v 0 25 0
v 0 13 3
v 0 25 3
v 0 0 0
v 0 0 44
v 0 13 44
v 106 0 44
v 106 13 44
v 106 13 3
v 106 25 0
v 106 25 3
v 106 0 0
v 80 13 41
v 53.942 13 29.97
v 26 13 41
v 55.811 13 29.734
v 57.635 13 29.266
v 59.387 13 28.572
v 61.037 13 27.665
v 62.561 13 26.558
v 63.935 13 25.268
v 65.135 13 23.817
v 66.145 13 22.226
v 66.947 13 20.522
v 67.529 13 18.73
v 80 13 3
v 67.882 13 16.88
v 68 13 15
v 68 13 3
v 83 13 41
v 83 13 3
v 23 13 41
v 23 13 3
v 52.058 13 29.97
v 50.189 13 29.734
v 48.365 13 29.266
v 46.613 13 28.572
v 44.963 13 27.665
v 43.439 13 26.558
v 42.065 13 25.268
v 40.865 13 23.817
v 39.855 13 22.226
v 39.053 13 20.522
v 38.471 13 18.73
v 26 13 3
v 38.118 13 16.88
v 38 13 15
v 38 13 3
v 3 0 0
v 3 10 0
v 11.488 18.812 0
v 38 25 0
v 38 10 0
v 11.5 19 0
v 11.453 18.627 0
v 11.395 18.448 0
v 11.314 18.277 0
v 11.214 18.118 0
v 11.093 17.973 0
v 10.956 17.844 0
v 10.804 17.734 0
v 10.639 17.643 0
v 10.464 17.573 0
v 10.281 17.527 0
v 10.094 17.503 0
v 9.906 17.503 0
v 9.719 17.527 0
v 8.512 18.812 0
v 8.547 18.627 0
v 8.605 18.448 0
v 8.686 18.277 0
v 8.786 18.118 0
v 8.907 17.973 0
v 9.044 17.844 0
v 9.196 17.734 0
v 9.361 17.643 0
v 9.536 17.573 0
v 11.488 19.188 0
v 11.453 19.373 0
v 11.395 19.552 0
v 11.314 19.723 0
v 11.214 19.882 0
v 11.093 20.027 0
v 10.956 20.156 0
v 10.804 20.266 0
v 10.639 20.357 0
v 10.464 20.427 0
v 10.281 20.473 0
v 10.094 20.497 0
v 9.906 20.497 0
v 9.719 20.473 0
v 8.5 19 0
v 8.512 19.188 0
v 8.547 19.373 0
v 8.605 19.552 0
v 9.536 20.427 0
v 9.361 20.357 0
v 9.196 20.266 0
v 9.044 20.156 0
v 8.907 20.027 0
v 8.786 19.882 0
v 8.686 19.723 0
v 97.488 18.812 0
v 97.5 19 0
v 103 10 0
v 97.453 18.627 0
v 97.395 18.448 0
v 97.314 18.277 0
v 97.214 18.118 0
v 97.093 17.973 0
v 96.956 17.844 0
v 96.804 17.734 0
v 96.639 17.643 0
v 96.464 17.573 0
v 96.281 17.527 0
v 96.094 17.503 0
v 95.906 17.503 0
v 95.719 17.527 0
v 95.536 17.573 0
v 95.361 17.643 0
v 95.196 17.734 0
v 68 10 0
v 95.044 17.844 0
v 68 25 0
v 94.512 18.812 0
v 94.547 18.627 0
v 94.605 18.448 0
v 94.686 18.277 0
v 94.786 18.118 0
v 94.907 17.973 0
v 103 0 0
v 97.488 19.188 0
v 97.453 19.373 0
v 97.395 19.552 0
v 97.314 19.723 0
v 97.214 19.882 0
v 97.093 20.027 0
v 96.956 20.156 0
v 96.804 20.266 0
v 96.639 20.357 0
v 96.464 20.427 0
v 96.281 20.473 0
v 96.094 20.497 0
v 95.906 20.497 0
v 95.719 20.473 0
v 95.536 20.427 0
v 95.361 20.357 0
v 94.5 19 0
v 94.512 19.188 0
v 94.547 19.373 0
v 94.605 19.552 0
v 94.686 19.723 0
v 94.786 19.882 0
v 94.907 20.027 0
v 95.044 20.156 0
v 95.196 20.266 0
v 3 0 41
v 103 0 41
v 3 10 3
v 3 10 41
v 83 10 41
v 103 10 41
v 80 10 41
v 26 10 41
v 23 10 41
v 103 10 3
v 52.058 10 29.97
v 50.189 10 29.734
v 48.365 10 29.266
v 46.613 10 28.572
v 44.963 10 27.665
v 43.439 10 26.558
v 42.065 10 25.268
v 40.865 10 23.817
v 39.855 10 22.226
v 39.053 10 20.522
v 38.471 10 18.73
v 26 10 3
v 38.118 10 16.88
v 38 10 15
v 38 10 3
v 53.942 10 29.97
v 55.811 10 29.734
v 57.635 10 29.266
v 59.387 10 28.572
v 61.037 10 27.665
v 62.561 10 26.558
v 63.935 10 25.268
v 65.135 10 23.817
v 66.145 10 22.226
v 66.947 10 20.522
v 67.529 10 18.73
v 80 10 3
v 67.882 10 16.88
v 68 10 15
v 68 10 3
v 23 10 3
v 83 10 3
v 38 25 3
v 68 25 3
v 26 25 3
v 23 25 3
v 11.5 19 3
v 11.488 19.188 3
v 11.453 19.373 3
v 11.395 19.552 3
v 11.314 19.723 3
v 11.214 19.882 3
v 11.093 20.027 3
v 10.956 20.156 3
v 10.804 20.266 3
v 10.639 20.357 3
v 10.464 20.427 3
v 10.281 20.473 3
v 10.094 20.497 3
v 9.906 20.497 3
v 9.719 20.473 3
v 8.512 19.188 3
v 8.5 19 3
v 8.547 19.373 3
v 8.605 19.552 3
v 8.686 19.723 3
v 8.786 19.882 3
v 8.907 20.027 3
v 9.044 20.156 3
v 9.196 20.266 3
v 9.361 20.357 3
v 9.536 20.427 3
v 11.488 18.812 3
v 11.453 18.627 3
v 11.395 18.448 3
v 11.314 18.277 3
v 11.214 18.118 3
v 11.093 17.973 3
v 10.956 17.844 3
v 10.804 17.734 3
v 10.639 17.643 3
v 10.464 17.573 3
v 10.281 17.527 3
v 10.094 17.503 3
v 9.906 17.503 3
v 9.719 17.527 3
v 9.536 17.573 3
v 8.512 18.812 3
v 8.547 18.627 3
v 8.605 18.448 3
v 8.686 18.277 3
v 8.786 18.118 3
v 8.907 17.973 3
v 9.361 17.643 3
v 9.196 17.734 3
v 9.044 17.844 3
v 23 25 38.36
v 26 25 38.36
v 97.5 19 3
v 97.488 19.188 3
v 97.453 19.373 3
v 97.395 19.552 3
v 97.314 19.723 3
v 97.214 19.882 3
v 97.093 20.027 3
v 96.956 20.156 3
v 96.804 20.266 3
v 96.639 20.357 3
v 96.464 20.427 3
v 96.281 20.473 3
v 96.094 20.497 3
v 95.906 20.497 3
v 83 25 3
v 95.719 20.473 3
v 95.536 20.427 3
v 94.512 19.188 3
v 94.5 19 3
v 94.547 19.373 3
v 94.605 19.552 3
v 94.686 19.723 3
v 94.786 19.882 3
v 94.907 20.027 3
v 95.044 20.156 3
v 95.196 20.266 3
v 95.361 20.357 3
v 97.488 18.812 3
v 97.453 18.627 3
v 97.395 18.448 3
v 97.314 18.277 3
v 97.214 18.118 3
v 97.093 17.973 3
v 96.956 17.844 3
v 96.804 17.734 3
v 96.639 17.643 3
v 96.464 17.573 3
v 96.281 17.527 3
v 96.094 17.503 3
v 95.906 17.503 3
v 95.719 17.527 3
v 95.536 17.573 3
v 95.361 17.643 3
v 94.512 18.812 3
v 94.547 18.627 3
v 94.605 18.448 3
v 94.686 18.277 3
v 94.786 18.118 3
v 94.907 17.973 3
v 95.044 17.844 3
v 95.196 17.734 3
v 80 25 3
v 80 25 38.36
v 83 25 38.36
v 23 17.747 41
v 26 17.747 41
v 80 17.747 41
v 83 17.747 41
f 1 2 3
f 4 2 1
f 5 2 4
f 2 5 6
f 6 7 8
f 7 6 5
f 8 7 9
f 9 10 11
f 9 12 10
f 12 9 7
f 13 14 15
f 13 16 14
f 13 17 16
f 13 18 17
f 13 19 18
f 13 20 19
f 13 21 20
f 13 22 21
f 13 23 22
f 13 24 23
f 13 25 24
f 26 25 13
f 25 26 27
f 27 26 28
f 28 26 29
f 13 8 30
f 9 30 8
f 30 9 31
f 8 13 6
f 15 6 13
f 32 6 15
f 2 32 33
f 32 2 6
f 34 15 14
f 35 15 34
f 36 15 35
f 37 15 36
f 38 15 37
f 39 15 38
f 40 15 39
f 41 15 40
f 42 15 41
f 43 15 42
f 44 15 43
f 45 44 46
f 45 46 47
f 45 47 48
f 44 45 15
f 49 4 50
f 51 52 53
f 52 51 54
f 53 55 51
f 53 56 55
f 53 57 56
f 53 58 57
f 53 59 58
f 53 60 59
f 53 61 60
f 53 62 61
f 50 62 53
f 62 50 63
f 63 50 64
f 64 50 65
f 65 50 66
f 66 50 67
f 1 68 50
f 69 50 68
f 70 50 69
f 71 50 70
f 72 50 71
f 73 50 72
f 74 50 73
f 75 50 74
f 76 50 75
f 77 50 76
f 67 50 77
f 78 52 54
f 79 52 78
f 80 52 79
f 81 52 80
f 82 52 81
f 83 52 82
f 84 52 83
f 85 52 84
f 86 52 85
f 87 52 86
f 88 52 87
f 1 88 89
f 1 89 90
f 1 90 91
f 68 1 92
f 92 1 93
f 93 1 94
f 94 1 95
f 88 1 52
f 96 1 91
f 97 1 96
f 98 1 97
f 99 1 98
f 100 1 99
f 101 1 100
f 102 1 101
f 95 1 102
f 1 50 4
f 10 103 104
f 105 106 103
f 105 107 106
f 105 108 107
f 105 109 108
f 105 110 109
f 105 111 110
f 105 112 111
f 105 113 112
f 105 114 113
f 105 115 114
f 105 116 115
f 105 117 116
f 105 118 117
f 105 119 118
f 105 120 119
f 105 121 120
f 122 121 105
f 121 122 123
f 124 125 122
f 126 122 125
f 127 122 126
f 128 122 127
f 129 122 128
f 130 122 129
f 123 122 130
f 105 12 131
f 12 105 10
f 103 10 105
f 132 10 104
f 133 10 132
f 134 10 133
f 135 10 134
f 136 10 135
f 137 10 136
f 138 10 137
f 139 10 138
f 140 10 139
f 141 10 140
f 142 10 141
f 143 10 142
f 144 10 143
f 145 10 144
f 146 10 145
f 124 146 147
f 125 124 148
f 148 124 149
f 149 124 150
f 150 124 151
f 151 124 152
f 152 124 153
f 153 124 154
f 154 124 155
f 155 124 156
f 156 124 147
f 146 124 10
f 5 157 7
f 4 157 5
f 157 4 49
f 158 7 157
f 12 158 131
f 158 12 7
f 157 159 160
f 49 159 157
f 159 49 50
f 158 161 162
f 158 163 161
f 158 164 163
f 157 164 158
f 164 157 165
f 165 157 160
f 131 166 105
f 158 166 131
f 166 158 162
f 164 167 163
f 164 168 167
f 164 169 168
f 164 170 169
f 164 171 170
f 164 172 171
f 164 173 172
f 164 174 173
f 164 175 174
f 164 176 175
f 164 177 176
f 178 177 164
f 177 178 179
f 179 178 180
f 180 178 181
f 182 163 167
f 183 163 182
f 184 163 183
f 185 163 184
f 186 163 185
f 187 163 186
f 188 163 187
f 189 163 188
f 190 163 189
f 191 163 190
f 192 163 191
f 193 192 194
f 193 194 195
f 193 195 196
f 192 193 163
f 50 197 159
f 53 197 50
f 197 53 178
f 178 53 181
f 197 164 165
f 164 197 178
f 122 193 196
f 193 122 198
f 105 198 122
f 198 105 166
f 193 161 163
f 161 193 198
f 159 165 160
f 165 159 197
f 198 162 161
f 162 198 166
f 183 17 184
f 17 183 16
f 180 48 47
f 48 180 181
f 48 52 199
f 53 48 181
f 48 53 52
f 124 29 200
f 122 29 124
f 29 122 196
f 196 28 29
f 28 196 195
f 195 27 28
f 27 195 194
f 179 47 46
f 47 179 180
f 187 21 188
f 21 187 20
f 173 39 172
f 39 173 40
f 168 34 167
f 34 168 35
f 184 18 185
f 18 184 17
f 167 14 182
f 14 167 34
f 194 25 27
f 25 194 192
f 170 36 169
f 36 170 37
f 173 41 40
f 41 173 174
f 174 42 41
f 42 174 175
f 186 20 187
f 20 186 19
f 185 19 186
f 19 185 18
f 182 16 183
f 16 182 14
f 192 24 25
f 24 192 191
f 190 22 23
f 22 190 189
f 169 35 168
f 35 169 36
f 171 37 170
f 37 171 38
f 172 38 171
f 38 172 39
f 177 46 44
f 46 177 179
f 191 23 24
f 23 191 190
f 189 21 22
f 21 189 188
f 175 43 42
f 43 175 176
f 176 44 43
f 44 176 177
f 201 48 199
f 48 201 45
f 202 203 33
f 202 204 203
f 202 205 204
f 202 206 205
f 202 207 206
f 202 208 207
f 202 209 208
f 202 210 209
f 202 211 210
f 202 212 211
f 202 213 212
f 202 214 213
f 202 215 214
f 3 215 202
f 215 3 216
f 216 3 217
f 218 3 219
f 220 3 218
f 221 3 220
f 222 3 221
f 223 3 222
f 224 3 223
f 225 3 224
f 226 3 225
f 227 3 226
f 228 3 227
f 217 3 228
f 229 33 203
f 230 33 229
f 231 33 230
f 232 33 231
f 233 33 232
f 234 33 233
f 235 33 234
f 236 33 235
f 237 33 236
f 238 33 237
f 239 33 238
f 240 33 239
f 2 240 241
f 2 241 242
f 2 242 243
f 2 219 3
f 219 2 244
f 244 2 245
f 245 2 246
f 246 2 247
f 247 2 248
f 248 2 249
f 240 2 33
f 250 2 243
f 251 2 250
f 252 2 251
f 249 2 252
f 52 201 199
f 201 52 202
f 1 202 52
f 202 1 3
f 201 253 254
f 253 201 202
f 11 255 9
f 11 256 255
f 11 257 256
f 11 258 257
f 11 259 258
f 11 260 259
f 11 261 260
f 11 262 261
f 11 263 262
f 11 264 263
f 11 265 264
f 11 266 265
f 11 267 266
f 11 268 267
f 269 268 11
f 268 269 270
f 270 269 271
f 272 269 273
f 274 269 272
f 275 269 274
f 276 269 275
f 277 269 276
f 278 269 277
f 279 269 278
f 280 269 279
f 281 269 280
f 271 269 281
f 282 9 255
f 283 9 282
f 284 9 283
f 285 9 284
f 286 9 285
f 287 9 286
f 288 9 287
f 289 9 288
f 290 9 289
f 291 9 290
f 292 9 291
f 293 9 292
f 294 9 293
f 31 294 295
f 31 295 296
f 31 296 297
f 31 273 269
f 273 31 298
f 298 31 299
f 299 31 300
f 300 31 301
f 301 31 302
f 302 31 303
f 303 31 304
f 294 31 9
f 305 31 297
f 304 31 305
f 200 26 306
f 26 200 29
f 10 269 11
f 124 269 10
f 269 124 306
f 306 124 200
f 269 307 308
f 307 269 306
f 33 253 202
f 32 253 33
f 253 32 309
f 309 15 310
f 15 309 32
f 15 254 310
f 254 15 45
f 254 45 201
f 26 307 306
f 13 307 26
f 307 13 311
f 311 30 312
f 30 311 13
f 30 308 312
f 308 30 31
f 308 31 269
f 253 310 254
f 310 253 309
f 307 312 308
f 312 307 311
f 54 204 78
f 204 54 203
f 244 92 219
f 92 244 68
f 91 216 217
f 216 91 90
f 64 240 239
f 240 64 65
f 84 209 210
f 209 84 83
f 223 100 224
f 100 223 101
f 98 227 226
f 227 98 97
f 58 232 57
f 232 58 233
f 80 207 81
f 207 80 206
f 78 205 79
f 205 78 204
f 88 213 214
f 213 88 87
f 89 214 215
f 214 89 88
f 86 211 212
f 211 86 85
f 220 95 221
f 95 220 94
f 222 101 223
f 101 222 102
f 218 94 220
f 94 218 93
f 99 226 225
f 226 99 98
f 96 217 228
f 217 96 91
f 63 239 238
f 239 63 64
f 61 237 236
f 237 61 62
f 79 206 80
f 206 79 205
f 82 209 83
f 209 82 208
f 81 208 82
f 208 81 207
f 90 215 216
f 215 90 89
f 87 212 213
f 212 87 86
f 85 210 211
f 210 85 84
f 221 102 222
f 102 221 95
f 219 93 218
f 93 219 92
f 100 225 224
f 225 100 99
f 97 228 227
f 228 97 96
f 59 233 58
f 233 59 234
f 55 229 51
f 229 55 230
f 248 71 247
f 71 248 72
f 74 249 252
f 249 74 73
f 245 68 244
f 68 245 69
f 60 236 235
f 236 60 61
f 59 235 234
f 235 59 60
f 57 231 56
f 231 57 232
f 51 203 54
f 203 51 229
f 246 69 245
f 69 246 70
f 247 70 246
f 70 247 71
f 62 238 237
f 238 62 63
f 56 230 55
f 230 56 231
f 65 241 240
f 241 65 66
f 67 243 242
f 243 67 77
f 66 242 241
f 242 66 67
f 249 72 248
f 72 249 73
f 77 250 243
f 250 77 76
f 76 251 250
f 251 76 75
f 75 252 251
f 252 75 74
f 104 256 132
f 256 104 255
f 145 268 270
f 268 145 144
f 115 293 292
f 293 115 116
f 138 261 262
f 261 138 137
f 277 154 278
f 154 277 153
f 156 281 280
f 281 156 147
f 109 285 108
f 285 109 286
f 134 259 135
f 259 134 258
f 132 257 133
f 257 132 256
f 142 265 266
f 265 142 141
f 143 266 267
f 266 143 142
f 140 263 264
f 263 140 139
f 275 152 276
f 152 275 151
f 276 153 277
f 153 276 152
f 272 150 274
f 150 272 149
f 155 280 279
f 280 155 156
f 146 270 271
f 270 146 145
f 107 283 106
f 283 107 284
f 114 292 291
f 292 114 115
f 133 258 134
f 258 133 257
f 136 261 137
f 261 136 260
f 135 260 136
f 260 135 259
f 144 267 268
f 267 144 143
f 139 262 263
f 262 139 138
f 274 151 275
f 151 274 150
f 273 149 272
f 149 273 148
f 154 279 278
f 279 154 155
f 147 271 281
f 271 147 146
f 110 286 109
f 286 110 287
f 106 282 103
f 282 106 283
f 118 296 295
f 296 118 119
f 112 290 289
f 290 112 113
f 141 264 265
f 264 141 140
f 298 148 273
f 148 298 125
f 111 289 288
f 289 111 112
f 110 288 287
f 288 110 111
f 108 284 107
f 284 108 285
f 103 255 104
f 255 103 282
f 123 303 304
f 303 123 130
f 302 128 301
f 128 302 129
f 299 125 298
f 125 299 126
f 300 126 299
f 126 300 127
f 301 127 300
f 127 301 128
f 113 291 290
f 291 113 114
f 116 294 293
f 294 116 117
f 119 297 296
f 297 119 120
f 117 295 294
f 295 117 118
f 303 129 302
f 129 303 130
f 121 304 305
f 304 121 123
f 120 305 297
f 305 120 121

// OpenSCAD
$fn=50;

plugX=100;
plugZ=41;

holderY=10;
wallThickness=3;
sideThickness=10;

cableHoleR=30/2;
temp=(plugX-cableHoleR*2)/2;

module multiplugHolder()
{
  difference() {

    union()
    {
      translate([0,holderY,0]) cube([temp+wallThickness,cableHoleR,wallThickness]);
      translate([70-2,holderY,0]) cube([temp+wallThickness,cableHoleR,wallThickness]);

      translate([wallThickness*2+20,holderY,0]) rotate([0,-90,0]) cube([temp+wallThickness*2,cableHoleR,wallThickness]);
      translate([plugX+wallThickness-20,holderY,0]) rotate([0,-90,0]) cube([temp+wallThickness*2,cableHoleR,wallThickness]);

      difference() {
        cube([plugX+wallThickness*2,holderY+wallThickness,plugZ+wallThickness]);
        translate([wallThickness,0,0]) cube([plugX,holderY,plugZ]);

        translate([0,holderY,0])
        hull()
        {
          translate([plugX/2+wallThickness-cableHoleR,0,0]) cube([cableHoleR*2,wallThickness,cableHoleR]);
          translate([plugX/2+wallThickness,0,cableHoleR]) rotate([-90,0,0]) cylinder(r=cableHoleR,h=wallThickness);
        }
      }
    }
    translate([wallThickness*2+10,holderY+5,42]) rotate([-20,0,0]) cube([cableHoleR,cableHoleR,wallThickness]);
    translate([plugX+wallThickness-30,holderY+5,42]) rotate([-20,0,0]) cube([cableHoleR,cableHoleR,wallThickness]);

    /* screw holes */
    #translate([10,holderY+wallThickness+6,0]) cylinder(r=3/2,h=wallThickness);
    translate([plugX+wallThickness*2-10,holderY+wallThickness+6,0]) cylinder(r=3/2,h=wallThickness);
  }


}


multiplugHolder();
